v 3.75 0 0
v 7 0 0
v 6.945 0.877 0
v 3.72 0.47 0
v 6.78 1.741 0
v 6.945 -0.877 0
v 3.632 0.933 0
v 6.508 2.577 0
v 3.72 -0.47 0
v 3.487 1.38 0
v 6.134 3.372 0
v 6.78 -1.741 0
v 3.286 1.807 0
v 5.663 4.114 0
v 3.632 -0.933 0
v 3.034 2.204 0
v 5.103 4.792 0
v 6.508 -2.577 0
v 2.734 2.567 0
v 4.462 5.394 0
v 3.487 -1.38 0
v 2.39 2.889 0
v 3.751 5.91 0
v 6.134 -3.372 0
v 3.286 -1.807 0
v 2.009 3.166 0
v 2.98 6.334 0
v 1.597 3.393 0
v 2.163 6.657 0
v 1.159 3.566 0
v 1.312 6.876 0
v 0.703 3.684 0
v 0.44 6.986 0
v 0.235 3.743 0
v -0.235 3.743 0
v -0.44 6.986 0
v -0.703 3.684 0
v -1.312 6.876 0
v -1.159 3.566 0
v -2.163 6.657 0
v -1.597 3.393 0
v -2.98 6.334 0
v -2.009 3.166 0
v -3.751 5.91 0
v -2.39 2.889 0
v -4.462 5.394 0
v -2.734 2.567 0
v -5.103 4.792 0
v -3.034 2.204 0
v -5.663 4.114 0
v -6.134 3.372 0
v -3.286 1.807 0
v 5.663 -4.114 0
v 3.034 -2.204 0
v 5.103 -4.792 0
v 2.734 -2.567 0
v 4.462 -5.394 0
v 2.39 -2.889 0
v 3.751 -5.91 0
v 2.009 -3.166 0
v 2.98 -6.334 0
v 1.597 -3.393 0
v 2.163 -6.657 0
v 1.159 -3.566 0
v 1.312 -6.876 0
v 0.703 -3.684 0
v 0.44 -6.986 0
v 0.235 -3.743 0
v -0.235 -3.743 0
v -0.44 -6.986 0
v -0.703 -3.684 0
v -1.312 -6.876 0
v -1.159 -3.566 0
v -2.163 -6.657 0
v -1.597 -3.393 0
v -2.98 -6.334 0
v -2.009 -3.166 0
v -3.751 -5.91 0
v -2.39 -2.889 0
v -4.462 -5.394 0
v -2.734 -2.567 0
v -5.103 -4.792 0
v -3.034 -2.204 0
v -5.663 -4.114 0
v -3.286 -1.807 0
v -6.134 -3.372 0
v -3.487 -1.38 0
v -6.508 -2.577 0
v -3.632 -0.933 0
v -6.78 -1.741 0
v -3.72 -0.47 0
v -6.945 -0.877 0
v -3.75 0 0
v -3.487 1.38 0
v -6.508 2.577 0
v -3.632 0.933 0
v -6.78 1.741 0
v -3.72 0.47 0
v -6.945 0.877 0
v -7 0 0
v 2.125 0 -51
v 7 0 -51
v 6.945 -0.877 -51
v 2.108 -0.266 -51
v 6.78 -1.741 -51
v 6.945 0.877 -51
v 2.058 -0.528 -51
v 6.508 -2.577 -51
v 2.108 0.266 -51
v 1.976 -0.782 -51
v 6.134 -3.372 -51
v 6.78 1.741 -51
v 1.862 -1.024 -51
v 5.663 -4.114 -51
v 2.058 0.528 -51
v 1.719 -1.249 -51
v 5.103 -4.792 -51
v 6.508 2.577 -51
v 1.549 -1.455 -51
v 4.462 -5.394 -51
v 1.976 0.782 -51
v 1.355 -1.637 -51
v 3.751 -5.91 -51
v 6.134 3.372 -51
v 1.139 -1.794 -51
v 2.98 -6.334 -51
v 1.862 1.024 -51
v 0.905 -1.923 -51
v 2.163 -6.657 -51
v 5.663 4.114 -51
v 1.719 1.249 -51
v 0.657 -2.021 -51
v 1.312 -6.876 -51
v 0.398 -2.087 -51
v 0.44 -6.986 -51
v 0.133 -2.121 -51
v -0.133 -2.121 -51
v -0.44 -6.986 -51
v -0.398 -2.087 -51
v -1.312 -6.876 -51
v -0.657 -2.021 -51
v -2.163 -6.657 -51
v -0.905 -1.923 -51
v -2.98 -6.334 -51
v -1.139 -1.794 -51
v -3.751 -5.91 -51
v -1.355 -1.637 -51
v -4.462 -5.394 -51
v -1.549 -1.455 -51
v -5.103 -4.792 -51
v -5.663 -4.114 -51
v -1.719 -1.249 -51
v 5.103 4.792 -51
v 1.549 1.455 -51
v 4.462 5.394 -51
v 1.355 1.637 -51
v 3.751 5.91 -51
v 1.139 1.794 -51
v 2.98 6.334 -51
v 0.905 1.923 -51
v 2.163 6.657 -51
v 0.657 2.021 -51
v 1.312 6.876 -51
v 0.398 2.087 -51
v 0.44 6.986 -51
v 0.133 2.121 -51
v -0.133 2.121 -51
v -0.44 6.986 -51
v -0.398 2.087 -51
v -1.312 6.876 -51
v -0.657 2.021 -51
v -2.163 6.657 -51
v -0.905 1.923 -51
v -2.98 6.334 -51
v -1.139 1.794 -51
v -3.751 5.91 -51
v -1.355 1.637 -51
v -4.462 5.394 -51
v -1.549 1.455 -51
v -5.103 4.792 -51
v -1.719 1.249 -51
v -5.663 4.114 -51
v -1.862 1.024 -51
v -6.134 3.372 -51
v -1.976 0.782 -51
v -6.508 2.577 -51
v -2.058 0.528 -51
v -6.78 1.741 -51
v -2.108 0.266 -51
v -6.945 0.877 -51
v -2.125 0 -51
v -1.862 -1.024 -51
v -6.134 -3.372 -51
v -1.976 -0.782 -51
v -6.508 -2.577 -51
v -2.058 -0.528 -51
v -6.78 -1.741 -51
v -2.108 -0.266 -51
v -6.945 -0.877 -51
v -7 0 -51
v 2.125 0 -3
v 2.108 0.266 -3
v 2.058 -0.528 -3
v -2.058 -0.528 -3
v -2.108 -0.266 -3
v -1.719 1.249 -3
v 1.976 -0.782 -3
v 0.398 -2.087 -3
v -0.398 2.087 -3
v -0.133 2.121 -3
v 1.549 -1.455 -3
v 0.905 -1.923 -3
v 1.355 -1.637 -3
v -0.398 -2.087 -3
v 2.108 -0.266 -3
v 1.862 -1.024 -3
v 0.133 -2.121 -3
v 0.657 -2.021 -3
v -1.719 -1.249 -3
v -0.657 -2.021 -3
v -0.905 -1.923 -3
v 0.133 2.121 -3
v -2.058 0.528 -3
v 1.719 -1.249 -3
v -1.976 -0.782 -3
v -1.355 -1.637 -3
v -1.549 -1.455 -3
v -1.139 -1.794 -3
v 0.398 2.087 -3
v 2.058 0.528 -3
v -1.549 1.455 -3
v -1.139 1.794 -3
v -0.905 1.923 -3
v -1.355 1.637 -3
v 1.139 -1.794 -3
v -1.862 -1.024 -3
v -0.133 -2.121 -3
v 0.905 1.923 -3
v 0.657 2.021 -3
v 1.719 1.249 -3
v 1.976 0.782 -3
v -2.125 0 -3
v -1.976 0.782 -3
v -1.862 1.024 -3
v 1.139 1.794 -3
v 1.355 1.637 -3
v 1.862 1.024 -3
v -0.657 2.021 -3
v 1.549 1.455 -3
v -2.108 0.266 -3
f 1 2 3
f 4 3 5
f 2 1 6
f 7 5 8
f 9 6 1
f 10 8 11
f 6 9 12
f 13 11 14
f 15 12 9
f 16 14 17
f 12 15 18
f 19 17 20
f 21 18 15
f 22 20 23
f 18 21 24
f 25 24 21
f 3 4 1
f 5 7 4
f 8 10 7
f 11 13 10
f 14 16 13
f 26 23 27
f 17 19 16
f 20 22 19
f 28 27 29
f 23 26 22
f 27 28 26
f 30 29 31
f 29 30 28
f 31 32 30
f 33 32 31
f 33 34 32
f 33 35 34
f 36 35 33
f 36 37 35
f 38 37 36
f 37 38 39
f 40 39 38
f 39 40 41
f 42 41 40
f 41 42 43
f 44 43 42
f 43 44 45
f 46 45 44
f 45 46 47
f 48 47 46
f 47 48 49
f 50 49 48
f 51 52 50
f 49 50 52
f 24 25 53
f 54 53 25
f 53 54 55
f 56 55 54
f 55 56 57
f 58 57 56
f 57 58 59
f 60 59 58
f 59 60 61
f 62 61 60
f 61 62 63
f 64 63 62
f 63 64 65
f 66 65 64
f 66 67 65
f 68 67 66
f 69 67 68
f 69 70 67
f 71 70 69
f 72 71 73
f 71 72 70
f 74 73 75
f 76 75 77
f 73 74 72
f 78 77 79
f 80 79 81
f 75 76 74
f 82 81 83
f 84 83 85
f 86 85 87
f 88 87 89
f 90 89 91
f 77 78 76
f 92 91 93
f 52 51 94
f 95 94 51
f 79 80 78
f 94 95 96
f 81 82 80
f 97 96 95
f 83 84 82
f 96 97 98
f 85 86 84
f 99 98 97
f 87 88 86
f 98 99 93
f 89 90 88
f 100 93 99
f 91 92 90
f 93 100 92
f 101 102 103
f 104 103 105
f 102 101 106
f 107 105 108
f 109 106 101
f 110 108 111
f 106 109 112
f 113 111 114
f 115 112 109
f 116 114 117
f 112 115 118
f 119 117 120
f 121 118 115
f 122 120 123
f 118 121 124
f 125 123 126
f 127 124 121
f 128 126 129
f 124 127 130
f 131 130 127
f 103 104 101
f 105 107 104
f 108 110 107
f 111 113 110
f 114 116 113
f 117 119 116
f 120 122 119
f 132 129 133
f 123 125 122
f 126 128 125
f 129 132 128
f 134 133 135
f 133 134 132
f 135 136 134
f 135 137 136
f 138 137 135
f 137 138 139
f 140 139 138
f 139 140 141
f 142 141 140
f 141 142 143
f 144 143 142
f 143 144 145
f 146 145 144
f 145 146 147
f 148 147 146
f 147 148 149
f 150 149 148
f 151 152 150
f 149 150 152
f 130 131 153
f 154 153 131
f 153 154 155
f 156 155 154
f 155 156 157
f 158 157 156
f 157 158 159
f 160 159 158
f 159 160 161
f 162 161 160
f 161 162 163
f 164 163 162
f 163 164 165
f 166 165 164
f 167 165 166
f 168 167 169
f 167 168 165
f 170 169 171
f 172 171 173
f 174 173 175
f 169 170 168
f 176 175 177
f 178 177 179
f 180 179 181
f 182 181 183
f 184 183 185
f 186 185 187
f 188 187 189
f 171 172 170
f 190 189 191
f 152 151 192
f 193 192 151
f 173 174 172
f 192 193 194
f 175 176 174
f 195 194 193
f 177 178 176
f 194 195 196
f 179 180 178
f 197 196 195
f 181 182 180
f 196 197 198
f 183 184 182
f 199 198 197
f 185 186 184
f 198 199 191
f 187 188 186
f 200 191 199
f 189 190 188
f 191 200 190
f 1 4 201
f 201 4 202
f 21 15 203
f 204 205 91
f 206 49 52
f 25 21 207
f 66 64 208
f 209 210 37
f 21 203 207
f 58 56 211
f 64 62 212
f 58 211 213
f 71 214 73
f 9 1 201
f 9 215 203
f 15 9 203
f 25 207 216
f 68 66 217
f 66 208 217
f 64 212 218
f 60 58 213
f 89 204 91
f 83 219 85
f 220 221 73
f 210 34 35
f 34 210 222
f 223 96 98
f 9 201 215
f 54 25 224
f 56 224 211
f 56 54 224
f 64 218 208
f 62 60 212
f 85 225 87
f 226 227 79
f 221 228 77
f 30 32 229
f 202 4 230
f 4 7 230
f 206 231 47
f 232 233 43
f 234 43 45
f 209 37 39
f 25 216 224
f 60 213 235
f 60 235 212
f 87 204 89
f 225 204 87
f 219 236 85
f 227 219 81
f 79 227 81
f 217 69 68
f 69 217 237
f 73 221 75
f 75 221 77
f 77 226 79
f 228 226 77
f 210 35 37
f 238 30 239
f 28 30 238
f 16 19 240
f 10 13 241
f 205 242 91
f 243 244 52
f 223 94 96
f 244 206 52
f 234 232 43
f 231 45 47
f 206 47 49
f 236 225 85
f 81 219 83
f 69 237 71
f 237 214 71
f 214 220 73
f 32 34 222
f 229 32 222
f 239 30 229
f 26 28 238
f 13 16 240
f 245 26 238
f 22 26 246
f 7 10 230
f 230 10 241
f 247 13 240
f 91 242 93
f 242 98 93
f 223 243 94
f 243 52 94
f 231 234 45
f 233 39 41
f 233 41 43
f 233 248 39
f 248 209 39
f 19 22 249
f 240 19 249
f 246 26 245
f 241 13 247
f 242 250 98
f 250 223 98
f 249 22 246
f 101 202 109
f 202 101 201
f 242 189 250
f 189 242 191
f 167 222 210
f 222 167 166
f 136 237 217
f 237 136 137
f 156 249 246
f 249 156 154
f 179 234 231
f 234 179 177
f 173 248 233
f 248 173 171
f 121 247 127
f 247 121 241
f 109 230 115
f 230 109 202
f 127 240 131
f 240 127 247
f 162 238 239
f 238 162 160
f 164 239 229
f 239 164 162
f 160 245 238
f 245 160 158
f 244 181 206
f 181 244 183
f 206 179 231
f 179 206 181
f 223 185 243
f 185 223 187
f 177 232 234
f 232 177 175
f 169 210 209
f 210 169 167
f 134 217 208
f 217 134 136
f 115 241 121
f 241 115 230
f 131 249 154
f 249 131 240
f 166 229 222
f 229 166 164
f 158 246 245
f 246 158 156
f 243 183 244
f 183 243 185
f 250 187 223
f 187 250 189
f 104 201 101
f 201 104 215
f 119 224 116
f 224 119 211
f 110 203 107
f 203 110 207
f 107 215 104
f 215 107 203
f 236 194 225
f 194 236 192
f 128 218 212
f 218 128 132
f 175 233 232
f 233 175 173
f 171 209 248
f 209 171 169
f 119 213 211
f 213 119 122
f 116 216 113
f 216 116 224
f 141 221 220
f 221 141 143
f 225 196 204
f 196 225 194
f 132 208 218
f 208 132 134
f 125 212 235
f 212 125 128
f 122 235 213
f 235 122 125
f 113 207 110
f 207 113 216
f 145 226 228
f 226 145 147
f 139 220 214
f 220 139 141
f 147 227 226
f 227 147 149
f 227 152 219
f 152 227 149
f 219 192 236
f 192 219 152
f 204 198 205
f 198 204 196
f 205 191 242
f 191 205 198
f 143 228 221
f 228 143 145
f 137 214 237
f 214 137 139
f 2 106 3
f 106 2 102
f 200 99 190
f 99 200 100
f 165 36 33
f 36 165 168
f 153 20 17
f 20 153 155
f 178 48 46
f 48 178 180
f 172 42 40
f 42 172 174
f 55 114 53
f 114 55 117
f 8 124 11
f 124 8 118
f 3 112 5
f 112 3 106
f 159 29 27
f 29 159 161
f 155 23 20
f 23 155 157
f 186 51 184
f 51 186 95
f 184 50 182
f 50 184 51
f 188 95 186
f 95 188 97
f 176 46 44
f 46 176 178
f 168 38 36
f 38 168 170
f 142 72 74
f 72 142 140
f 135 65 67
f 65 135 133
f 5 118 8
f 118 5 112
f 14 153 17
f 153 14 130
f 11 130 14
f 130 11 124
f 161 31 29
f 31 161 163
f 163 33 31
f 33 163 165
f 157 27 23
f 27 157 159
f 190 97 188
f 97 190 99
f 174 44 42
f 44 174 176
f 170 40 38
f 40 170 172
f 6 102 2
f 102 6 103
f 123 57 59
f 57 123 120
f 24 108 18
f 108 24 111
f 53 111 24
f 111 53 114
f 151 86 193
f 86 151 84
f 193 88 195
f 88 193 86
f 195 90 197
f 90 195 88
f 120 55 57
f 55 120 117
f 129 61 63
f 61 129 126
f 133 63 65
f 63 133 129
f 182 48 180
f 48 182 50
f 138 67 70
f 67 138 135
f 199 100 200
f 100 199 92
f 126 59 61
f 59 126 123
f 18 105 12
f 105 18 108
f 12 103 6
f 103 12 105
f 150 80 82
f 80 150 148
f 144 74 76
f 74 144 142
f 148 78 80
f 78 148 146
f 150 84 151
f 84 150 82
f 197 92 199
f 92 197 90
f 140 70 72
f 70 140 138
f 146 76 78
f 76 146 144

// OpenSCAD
$fn = 50;


difference() {
	union() {
		translate(v = [0, 0, -51.0000000000]) {
			cylinder(h = 51, r = 7.0000000000);
		}
		cylinder(h = 0, r = 13.0000000000);
	}
	union() {
		translate(v = [0, 0, 0]) {
			rotate(a = [0, 0, 0]) {
				difference() {
					union() {
						#translate(v = [0, 0, -51.0000000000]) {
							cylinder(h = 51, r = 2.0000000000);
						}
						#translate(v = [0, 0, -3]) {
							cylinder(h = 3, r1 = 2.1250000000, r2 = 3.7500000000);
						}
						#translate(v = [0, 0, -51.0000000000]) {
							cylinder(h = 51, r = 2.1250000000);
						}
						#translate(v = [0, 0, -51.0000000000]) {
							cylinder(h = 51, r = 2.0000000000);
						}
					}
					union();
				}
			}
		}
	}
}
